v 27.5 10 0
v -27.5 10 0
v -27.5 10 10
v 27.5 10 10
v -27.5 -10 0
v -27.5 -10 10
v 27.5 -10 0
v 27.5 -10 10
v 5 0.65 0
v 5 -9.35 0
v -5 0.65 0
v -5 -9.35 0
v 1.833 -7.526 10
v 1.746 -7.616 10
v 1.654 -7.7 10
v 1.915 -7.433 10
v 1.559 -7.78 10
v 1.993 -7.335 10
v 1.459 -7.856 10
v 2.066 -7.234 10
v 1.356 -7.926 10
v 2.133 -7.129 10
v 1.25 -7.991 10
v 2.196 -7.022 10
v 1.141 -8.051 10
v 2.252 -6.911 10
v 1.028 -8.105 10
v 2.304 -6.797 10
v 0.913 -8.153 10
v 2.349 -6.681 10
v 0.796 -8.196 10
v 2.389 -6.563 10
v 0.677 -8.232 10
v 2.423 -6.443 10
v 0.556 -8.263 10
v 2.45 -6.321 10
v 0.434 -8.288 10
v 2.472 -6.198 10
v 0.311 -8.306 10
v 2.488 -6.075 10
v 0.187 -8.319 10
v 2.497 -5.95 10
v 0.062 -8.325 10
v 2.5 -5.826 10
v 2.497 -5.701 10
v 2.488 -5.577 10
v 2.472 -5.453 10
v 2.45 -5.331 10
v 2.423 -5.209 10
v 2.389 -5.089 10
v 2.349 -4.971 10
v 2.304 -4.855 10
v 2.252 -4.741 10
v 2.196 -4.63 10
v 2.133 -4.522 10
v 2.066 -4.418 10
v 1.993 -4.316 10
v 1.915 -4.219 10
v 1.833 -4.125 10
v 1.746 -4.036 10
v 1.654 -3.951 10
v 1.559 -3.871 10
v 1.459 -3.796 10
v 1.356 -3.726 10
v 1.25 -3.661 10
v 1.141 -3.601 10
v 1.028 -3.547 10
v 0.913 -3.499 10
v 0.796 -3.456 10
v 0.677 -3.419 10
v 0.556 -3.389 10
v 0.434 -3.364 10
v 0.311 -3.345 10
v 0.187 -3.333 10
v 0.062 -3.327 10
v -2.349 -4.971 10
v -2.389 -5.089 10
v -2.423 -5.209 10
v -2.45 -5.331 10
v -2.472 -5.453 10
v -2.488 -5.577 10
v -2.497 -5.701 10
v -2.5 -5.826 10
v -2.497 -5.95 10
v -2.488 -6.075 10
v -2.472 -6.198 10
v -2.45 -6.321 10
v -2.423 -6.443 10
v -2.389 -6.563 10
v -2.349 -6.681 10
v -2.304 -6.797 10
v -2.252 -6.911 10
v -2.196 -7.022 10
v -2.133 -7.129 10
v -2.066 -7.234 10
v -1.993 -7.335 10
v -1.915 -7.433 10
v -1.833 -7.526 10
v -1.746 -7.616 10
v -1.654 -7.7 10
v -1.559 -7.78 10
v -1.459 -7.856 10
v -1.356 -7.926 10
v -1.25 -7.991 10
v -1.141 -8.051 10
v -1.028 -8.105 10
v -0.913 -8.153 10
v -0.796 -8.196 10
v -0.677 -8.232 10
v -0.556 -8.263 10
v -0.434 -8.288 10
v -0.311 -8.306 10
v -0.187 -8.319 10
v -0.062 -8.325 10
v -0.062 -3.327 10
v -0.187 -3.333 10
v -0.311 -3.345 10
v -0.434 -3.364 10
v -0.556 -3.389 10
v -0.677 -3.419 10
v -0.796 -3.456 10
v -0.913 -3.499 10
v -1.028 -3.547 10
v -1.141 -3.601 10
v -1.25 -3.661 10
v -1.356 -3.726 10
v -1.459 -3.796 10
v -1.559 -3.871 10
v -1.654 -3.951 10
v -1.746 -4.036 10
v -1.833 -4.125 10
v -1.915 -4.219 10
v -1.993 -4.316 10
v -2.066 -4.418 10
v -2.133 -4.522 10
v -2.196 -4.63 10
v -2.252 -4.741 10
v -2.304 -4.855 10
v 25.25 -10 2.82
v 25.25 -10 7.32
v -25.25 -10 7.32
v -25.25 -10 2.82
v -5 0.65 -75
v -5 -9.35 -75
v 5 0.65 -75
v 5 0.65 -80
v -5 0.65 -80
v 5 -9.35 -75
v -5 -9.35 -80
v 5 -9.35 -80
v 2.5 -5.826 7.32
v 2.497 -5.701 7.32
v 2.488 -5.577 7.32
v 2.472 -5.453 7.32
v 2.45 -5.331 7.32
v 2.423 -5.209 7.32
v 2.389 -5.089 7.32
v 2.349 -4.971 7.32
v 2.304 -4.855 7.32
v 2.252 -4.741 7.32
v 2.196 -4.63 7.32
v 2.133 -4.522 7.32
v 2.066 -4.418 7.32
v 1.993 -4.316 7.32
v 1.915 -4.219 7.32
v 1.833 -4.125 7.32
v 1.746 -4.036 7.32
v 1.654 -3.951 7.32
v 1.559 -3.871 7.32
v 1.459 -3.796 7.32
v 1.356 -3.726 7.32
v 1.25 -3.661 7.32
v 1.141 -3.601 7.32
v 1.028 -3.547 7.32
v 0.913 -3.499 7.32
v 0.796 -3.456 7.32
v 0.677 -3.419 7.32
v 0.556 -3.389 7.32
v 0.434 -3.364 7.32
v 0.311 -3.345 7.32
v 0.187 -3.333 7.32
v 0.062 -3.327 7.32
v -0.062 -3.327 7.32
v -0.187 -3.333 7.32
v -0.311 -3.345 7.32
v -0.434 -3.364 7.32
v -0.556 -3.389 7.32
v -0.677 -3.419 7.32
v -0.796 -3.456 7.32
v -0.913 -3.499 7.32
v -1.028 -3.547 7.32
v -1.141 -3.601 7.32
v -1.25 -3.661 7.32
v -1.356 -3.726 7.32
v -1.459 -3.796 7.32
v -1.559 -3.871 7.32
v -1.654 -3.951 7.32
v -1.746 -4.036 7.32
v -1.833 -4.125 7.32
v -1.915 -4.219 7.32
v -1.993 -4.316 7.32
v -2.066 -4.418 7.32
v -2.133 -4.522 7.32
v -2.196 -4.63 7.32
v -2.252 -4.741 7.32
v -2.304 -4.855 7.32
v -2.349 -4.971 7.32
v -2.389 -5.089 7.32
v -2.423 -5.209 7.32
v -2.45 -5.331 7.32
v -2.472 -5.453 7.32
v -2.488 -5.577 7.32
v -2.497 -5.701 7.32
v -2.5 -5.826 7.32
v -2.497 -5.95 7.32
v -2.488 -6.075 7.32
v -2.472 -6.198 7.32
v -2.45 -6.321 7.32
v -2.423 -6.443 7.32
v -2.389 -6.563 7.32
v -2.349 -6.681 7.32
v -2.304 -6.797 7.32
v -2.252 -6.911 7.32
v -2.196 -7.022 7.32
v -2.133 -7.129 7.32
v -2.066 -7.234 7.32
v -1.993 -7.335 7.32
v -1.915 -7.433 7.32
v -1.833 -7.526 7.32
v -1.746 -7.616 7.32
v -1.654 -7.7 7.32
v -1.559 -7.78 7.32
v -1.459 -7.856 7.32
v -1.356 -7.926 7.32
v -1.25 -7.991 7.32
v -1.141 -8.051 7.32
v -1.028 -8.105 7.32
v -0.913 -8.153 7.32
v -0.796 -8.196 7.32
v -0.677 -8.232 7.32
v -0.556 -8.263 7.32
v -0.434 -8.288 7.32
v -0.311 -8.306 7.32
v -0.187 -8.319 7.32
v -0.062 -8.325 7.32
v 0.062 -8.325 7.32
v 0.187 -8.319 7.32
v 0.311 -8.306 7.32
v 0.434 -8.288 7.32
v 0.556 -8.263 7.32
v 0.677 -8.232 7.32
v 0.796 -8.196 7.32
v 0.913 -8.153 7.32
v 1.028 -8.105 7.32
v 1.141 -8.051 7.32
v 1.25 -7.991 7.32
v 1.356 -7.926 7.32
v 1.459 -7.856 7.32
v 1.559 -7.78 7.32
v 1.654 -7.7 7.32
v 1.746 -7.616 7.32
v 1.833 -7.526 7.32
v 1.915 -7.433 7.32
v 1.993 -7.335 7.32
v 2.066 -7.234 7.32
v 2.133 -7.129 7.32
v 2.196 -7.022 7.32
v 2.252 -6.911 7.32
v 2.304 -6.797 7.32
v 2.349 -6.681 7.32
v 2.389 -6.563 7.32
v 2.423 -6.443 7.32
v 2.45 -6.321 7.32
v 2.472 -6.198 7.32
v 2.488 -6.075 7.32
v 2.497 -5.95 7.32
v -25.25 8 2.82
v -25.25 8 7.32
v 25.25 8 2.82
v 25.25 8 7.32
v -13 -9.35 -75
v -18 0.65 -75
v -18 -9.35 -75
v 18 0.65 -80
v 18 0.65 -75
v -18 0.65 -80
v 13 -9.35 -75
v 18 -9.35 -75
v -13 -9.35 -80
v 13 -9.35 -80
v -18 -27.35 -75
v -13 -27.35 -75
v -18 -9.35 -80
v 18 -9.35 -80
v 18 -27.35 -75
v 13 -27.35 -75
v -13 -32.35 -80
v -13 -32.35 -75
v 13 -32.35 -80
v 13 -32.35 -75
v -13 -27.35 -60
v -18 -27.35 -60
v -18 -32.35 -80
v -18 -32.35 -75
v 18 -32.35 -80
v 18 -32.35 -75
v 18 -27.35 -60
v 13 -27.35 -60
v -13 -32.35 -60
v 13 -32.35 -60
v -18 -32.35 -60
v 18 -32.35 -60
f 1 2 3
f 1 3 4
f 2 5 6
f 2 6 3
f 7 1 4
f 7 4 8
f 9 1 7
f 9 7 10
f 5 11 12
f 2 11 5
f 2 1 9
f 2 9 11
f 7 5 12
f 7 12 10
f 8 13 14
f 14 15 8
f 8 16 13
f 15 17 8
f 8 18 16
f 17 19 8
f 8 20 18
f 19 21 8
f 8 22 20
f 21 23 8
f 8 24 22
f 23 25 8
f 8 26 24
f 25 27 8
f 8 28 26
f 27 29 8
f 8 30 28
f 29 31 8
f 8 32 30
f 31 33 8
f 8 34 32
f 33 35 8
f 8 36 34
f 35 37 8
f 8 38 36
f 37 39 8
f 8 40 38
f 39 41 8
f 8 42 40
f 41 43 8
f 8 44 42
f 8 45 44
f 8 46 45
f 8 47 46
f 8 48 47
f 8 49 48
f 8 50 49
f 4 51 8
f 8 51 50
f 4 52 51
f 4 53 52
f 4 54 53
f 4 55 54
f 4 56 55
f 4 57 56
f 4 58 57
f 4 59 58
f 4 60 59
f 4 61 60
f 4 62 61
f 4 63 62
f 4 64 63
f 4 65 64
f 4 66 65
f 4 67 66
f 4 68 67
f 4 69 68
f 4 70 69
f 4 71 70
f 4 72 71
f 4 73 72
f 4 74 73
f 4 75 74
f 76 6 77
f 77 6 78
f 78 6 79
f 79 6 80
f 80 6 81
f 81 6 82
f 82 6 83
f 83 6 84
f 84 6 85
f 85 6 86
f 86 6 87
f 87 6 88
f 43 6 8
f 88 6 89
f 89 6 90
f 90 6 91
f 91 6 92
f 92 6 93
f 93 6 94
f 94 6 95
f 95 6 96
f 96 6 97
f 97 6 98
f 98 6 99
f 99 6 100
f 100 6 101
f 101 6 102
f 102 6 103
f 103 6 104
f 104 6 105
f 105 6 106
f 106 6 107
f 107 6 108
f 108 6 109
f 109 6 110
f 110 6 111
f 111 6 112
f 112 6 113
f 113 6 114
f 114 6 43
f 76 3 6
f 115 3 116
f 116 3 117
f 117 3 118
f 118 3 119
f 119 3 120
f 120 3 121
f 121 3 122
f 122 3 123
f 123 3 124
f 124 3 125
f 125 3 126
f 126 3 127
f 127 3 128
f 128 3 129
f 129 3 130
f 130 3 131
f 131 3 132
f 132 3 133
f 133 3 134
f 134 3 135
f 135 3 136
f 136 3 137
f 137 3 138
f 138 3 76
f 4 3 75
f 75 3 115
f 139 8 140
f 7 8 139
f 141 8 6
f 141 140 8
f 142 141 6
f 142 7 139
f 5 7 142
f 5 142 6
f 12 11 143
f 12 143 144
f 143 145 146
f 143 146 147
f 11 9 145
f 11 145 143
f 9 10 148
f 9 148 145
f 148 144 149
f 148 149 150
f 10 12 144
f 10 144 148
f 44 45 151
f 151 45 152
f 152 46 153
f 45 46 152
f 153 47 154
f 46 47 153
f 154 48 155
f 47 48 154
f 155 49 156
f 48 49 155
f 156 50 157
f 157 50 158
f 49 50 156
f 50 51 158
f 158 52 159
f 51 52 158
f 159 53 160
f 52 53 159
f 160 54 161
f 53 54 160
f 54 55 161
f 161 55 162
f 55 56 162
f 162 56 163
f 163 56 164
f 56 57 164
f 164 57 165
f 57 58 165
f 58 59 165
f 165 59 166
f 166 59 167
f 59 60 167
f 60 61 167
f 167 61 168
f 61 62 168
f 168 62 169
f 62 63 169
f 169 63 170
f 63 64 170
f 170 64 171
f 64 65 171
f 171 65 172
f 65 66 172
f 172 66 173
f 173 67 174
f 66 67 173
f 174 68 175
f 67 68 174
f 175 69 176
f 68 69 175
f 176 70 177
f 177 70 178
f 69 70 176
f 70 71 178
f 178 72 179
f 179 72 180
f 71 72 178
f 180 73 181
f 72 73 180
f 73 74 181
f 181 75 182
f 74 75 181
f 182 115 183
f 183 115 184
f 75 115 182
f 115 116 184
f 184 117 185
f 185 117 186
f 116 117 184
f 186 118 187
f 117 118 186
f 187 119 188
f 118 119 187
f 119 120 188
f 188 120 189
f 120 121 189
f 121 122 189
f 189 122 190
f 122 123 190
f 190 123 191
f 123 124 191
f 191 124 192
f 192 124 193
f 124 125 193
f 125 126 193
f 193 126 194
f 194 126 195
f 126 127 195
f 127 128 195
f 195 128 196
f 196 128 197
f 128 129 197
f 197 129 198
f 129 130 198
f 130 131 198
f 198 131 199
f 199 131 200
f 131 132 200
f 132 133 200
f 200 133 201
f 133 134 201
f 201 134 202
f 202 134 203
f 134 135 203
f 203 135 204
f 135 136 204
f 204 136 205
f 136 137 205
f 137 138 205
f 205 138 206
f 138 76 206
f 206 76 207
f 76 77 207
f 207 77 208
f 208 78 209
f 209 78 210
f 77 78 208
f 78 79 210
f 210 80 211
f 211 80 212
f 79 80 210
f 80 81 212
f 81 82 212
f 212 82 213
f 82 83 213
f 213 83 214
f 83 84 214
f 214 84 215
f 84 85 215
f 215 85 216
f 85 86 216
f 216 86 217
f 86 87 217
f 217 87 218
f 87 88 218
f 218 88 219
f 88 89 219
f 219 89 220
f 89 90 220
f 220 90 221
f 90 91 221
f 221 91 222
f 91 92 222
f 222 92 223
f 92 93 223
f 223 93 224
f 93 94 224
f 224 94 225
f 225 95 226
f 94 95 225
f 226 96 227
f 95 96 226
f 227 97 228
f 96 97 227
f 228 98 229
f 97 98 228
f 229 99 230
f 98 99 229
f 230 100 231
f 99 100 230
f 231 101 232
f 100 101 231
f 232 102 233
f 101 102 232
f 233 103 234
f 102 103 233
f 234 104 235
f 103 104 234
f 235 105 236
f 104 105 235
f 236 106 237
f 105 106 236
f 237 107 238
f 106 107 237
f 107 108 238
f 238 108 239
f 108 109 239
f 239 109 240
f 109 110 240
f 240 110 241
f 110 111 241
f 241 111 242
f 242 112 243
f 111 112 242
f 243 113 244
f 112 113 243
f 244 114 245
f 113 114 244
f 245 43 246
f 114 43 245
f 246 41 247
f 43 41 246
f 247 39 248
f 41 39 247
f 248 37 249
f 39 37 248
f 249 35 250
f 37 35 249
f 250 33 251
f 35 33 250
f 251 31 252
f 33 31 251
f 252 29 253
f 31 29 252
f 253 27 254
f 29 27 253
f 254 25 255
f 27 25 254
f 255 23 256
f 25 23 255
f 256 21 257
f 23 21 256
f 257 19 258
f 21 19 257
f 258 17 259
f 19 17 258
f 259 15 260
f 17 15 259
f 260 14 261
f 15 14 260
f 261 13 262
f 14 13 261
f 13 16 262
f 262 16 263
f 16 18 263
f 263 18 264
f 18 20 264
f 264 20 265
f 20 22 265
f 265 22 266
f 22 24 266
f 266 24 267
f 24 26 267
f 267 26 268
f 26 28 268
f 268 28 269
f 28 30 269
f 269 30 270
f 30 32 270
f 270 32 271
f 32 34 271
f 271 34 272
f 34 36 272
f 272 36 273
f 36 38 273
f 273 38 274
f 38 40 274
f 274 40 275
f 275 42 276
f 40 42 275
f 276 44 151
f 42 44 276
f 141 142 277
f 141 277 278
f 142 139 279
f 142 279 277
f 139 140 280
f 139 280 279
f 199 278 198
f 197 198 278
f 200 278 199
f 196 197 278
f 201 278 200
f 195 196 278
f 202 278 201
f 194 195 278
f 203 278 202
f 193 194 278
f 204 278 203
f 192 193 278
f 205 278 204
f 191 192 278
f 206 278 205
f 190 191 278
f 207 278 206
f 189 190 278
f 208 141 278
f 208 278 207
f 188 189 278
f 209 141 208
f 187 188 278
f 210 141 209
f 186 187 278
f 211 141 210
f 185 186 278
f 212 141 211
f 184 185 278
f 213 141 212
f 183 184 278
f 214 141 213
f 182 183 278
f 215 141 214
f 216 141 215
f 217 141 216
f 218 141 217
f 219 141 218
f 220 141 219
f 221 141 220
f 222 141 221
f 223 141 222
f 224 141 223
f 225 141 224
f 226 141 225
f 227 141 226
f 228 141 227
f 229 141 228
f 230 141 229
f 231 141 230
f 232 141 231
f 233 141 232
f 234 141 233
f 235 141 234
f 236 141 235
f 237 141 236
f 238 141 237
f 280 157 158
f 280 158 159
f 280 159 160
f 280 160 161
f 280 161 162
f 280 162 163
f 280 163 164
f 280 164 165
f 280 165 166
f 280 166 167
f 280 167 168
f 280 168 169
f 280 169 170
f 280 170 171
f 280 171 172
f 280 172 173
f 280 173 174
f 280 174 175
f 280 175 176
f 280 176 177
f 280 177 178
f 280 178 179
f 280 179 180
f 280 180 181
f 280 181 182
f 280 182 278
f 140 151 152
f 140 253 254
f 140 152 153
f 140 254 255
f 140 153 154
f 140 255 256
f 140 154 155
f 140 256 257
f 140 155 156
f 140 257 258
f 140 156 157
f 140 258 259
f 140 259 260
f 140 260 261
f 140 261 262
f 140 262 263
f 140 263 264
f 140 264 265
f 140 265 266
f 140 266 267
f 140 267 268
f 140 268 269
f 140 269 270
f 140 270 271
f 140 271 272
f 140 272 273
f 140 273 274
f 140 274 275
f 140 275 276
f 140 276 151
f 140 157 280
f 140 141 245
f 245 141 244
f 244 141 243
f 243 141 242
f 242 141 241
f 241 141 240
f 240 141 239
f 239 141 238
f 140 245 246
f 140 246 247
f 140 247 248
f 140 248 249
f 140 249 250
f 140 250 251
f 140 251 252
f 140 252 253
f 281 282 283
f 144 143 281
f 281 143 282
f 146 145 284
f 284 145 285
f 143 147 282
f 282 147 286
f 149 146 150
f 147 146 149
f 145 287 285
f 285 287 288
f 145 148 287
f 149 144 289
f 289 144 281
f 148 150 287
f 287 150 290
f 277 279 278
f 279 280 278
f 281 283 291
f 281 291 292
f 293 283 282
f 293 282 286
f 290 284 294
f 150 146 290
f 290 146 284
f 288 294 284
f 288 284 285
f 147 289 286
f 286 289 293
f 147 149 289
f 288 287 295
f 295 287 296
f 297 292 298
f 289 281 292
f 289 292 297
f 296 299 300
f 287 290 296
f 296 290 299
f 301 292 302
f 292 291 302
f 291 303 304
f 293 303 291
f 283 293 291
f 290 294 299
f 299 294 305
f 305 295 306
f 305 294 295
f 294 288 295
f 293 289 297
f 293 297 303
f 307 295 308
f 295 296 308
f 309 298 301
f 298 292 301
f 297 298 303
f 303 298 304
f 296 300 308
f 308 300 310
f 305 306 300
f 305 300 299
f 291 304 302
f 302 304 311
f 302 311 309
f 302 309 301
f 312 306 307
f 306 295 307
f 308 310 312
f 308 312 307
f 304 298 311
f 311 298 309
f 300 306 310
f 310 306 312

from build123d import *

# Parameters (mm, degrees)
SKETCH_W        = 55
SKETCH_H        = 20
PAD_DEPTH       = 10
SKETCH001_W     = 50.5
SKETCH001_H     = 4.5
POCKET_DEPTH    = 18
SKETCH002_R     = 2.5
POCKET001_DEPTH = 5
SKETCH003_W     = 10
SKETCH003_H     = 10
PAD001_DEPTH    = 80
SKETCH004_W     = 10
SKETCH004_H     = 5
PAD002_DEPTH    = 13
SKETCH005_W     = 10
SKETCH005_H     = 5
PAD003_DEPTH    = 13
SKETCH006_W     = 5
SKETCH006_H     = 5
PAD004_DEPTH    = 23
SKETCH007_W     = 5
SKETCH007_H     = 5
PAD005_DEPTH    = 23
SKETCH008_W     = 5
SKETCH008_H     = 5
PAD006_DEPTH    = 15
SKETCH009_W     = 5
SKETCH009_H     = 5
PAD007_DEPTH    = 15


with BuildPart() as part:
    # Sketch → Pad (new body)
    with BuildSketch(Plane.XY):
        Rectangle(SKETCH_W, SKETCH_H)
    extrude(amount=PAD_DEPTH)

    # Sketch001 (on Face3 of Pad) → Pocket (cut)
    with BuildSketch(Plane.XZ.offset(10)):
        with Locations((0, 5.069511)):
            Rectangle(SKETCH001_W, SKETCH001_H)
    extrude(amount=-POCKET_DEPTH, mode=Mode.SUBTRACT)

    # Sketch002 (on Face5 of Pocket) → Pocket001 (cut)
    with BuildSketch(Plane.XY.offset(10)):
        with Locations((0, -5.825869)):
            Circle(SKETCH002_R)
    extrude(amount=-POCKET001_DEPTH, mode=Mode.SUBTRACT)

    # Sketch003 (on Face4 of Pocket001) → Pad001 (join)
    with BuildSketch(Plane(origin=(0, 0, 0), x_dir=(1, 0, 0), z_dir=(0, 0, -1))):
        with Locations((0, 4.349566)):
            Rectangle(SKETCH003_W, SKETCH003_H)
    extrude(amount=PAD001_DEPTH)

    # Sketch004 (on Face7 of Pad001) → Pad002 (join)
    with BuildSketch(Plane(origin=(-5, 0, 0), x_dir=(0, -1, 0), z_dir=(-1, 0, 0))):
        with Locations((4.349566, -77.5)):
            Rectangle(SKETCH004_W, SKETCH004_H)
    extrude(amount=PAD002_DEPTH)

    # Sketch005 (on Face9 of Pad002) → Pad003 (join)
    with BuildSketch(Plane.YZ.offset(5)):
        with Locations((-4.349566, -77.5)):
            Rectangle(SKETCH005_W, SKETCH005_H)
    extrude(amount=PAD003_DEPTH)

    # Sketch006 (on Face21 of Pad003) → Pad004 (join)
    with BuildSketch(Plane.XZ.offset(9.349566)):
        with Locations((-15.5, -77.5)):
            Rectangle(SKETCH006_W, SKETCH006_H)
    extrude(amount=PAD004_DEPTH)

    # Sketch007 (on Face22 of Pad004) → Pad005 (join)
    with BuildSketch(Plane.XZ.offset(9.349566)):
        with Locations((15.5, -77.5)):
            Rectangle(SKETCH007_W, SKETCH007_H)
    extrude(amount=PAD005_DEPTH)

    # Sketch008 (on Face24 of Pad005) → Pad006 (join)
    with BuildSketch(Plane.XY.offset(-75)):
        with Locations((-15.5, -29.849566)):
            Rectangle(SKETCH008_W, SKETCH008_H)
    extrude(amount=PAD006_DEPTH)

    # Sketch009 (on Face29 of Pad006) → Pad007 (join)
    with BuildSketch(Plane.XY.offset(-75)):
        with Locations((15.5, -29.849566)):
            Rectangle(SKETCH009_W, SKETCH009_H)
    extrude(amount=PAD007_DEPTH)


solid = part.part
